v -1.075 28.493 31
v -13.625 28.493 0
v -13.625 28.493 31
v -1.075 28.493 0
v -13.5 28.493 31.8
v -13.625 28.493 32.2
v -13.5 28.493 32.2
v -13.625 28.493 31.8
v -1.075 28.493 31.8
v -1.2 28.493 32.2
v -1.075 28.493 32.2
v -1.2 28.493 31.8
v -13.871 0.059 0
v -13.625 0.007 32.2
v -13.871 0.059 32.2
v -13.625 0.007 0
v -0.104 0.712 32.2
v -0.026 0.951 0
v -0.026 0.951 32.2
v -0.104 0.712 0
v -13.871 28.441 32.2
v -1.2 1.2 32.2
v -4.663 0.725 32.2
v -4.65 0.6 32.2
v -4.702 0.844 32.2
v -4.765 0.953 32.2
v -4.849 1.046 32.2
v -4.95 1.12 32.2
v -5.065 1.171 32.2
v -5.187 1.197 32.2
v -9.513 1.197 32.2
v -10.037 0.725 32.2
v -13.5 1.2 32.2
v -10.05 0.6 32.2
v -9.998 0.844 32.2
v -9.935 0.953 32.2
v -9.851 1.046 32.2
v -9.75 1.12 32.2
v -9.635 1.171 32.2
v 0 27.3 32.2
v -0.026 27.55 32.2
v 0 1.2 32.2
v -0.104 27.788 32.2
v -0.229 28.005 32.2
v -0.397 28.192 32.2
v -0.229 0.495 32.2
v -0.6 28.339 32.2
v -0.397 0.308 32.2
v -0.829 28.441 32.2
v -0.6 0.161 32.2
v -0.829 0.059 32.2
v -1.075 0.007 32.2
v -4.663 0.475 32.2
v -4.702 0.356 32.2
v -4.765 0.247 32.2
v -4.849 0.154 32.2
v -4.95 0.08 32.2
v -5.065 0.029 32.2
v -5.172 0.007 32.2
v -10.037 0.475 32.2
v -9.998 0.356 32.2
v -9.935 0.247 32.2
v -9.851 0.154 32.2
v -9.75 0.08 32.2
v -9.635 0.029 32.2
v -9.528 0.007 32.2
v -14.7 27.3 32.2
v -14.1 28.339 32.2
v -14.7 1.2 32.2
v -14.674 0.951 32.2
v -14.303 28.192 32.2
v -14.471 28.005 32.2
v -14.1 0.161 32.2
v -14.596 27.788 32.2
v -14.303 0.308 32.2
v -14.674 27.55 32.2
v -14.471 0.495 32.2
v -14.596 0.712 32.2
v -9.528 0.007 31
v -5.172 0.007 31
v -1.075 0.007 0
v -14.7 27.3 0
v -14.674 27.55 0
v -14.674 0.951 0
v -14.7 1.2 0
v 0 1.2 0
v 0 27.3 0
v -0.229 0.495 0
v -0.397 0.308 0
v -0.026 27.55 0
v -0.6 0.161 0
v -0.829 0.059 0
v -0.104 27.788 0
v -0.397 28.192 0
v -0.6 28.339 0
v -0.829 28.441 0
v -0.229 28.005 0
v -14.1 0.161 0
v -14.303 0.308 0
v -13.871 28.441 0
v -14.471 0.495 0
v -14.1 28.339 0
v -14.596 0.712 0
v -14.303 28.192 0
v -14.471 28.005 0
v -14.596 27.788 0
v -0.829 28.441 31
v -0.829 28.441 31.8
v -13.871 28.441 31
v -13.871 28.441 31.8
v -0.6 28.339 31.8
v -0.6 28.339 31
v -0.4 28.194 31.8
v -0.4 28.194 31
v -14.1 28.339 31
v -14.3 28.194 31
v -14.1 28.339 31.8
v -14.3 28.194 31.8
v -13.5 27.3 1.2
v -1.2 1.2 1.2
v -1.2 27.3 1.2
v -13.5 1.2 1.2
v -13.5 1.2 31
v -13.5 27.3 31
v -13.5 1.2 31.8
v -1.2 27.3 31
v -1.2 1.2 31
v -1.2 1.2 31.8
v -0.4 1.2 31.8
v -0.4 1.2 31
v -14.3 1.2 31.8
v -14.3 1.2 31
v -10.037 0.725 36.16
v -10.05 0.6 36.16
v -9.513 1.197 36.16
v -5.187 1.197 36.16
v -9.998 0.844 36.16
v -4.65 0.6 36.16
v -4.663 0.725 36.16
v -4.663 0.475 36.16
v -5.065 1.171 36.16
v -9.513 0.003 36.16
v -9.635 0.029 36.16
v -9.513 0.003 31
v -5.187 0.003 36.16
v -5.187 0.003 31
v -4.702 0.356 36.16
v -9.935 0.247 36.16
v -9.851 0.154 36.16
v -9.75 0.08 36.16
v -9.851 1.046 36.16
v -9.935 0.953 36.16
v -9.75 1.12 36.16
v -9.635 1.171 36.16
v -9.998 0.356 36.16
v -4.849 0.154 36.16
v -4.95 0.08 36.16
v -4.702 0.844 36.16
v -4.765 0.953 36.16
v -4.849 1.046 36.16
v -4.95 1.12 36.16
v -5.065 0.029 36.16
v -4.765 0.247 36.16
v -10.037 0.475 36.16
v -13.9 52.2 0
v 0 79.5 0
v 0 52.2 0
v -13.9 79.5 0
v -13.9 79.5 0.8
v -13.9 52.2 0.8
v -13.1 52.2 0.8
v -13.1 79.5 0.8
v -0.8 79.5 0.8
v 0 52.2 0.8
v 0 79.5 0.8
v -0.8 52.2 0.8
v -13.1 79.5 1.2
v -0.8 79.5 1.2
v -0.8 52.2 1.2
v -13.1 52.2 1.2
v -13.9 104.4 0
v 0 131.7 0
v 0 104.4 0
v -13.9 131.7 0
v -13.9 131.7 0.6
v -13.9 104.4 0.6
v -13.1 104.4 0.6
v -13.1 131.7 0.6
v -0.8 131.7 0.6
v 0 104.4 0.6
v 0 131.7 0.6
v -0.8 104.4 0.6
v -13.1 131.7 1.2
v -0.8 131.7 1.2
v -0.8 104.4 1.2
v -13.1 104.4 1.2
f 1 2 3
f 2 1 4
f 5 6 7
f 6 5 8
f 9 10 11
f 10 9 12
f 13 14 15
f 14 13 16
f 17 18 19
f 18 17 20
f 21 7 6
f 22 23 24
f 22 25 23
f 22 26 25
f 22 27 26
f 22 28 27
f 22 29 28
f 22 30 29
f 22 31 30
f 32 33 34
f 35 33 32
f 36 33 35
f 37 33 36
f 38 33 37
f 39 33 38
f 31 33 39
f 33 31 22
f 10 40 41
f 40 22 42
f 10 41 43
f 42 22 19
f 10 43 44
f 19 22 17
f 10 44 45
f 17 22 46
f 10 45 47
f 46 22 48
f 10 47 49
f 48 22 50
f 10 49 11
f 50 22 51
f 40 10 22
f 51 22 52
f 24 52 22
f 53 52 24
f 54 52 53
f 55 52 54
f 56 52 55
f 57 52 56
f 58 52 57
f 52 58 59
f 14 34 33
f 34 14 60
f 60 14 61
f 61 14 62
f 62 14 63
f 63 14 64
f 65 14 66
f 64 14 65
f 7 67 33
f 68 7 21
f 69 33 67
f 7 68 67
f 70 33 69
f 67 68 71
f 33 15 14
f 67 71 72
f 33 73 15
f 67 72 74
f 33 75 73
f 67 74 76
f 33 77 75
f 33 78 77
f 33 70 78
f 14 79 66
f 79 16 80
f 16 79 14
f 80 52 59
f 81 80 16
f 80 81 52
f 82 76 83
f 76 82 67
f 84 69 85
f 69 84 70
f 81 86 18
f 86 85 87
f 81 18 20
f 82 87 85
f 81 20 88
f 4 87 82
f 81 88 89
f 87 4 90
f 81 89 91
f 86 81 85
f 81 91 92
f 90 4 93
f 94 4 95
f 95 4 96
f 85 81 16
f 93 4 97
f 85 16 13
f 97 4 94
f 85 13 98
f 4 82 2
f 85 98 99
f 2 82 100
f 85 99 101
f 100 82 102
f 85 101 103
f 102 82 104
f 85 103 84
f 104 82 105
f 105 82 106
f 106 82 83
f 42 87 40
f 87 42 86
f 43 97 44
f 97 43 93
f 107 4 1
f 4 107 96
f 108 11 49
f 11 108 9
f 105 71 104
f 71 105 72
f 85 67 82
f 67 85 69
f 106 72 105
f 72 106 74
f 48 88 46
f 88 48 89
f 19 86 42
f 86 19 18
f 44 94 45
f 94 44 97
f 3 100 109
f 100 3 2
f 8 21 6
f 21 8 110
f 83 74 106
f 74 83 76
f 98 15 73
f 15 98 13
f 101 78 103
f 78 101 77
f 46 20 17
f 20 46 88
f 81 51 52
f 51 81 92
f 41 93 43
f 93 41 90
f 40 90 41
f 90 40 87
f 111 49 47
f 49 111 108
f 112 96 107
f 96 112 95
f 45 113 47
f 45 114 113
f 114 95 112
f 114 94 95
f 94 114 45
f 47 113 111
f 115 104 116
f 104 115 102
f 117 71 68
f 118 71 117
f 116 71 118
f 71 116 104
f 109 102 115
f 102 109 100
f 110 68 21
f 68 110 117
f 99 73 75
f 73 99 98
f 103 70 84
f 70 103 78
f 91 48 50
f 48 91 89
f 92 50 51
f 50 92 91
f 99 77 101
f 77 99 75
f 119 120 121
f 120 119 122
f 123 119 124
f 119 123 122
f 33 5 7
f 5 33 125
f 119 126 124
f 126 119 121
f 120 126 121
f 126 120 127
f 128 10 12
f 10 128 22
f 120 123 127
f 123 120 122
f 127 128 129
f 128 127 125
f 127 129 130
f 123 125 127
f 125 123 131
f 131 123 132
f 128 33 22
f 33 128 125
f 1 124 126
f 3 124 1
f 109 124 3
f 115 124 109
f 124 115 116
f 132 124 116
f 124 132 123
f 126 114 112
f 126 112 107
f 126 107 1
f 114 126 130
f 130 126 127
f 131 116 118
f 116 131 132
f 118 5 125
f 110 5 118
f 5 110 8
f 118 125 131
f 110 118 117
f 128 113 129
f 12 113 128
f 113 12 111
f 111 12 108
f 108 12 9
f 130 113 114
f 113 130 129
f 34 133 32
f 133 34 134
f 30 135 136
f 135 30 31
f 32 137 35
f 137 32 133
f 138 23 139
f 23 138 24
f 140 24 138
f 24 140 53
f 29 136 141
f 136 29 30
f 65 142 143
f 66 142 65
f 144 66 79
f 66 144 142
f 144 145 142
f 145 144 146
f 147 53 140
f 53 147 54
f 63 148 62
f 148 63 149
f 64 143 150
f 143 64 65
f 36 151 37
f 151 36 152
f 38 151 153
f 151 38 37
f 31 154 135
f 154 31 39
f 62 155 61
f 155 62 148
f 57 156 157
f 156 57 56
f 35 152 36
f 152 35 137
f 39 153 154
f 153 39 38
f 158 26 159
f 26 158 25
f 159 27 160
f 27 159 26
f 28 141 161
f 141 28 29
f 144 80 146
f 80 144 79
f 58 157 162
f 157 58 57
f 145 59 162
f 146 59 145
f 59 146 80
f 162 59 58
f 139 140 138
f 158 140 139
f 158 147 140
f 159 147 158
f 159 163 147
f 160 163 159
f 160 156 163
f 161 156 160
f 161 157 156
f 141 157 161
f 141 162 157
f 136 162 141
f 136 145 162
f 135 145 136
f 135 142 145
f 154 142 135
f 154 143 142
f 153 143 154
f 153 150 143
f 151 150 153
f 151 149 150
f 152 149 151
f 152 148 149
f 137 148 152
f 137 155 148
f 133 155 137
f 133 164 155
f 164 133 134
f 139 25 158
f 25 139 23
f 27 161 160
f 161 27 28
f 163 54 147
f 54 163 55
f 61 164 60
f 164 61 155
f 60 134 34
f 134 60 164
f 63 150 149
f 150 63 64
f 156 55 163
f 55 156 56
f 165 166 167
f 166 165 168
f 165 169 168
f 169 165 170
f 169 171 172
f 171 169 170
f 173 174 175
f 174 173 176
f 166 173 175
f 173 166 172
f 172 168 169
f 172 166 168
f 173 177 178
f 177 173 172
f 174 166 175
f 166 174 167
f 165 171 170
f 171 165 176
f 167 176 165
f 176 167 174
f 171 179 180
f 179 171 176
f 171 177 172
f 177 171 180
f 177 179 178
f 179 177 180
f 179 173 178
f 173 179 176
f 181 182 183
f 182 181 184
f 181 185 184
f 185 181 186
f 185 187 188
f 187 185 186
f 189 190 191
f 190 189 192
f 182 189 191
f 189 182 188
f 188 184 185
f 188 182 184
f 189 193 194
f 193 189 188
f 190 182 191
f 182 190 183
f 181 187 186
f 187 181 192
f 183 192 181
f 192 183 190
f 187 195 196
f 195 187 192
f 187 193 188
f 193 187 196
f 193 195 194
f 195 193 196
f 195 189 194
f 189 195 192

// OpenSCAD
// Higher definition curves
$fs = 0.01;

module roundedcube(size = [1, 1, 1], center = false, radius = 0.5, apply_to = "all") {
	// If single value, convert to [x, y, z] vector
	size = (size[0] == undef) ? [size, size, size] : size;

	translate_min = radius;
	translate_xmax = size[0] - radius;
	translate_ymax = size[1] - radius;
	translate_zmax = size[2] - radius;

	diameter = radius * 2;

	module build_point(type = "sphere", rotate = [0, 0, 0]) {
		if (type == "sphere") {
			sphere(r = radius);
		} else if (type == "cylinder") {
			rotate(a = rotate)
			cylinder(h = diameter, r = radius, center = true);
		}
	}

	obj_translate = (center == false) ?
		[0, 0, 0] : [
			-(size[0] / 2),
			-(size[1] / 2),
			-(size[2] / 2)
		];

	translate(v = obj_translate) {
		hull() {
			for (translate_x = [translate_min, translate_xmax]) {
				x_at = (translate_x == translate_min) ? "min" : "max";
				for (translate_y = [translate_min, translate_ymax]) {
					y_at = (translate_y == translate_min) ? "min" : "max";
					for (translate_z = [translate_min, translate_zmax]) {
						z_at = (translate_z == translate_min) ? "min" : "max";

						translate(v = [translate_x, translate_y, translate_z])
						if (
							(apply_to == "all") ||
							(apply_to == "xmin" && x_at == "min") || (apply_to == "xmax" && x_at == "max") ||
							(apply_to == "ymin" && y_at == "min") || (apply_to == "ymax" && y_at == "max") ||
							(apply_to == "zmin" && z_at == "min") || (apply_to == "zmax" && z_at == "max")
						) {
							build_point("sphere");
						} else {
							rotate = 
								(apply_to == "xmin" || apply_to == "xmax" || apply_to == "x") ? [0, 90, 0] : (
								(apply_to == "ymin" || apply_to == "ymax" || apply_to == "y") ? [90, 90, 0] :
								[0, 0, 0]
							);
							build_point("cylinder", rotate);
						}
					}
				}
			}
		}
	}
}



lo = 29.8;
la = 26.1;
ha = 12.3;
ep = 1.2;
ep2 = 0.8;
ep3 = 0.6;
k = 3;
rounded = "x"; //"all" or "x"

rotate([0,-90,0]) {
// Box
union() {
    difference() {
        // Entire Box    
        roundedcube([lo+2*ep, la+2*ep, ha+2*ep], false, ep, rounded);
        // Remove main Inside box
        translate([ep,ep,ep]) cube([lo+2*ep, la, ha]);
        // Remove right part
        translate([lo+ep,la+ep,ep]) cube([ep, ep, ha]);
        // Remove inside for the top part
        translate([lo+ep,ep,ep-ep2]) cube([ep2, la+2*ep2, ha+2*ep2]);
    };
    // Key ring part
    difference() {
        // Main key ring part
        translate([lo+ep,0,ha/2+ep-k/2-ep]) roundedcube([k+1.8*ep, ep, k+2*ep],false, ep/2, "x");
        // Remove for key ring
        %translate([lo+2*ep,0,ha/2+ep-k/2]) cube([k, ep, k], false, ep);
        // Remove inside for the top part
        #translate([lo+ep,ep/2,ep/2]) cube([ep/2, la+2*ep, ha+ep]);
    };
   
}

// Top
union() {
    // Top
    translate([0,2*la,0]) cube([ep2, la+ep, ha+2*ep2]);
    translate([ep2,2*la,ep2]) cube([ep-ep2, la+ep, ha]);
};

// Top 2
union() {
    // Top
    translate([0,4*la,0]) cube([ep3, la+ep, ha+2*ep2]);
    translate([ep3,4*la,ep2]) cube([ep-ep3, la+ep, ha]);
};
}
